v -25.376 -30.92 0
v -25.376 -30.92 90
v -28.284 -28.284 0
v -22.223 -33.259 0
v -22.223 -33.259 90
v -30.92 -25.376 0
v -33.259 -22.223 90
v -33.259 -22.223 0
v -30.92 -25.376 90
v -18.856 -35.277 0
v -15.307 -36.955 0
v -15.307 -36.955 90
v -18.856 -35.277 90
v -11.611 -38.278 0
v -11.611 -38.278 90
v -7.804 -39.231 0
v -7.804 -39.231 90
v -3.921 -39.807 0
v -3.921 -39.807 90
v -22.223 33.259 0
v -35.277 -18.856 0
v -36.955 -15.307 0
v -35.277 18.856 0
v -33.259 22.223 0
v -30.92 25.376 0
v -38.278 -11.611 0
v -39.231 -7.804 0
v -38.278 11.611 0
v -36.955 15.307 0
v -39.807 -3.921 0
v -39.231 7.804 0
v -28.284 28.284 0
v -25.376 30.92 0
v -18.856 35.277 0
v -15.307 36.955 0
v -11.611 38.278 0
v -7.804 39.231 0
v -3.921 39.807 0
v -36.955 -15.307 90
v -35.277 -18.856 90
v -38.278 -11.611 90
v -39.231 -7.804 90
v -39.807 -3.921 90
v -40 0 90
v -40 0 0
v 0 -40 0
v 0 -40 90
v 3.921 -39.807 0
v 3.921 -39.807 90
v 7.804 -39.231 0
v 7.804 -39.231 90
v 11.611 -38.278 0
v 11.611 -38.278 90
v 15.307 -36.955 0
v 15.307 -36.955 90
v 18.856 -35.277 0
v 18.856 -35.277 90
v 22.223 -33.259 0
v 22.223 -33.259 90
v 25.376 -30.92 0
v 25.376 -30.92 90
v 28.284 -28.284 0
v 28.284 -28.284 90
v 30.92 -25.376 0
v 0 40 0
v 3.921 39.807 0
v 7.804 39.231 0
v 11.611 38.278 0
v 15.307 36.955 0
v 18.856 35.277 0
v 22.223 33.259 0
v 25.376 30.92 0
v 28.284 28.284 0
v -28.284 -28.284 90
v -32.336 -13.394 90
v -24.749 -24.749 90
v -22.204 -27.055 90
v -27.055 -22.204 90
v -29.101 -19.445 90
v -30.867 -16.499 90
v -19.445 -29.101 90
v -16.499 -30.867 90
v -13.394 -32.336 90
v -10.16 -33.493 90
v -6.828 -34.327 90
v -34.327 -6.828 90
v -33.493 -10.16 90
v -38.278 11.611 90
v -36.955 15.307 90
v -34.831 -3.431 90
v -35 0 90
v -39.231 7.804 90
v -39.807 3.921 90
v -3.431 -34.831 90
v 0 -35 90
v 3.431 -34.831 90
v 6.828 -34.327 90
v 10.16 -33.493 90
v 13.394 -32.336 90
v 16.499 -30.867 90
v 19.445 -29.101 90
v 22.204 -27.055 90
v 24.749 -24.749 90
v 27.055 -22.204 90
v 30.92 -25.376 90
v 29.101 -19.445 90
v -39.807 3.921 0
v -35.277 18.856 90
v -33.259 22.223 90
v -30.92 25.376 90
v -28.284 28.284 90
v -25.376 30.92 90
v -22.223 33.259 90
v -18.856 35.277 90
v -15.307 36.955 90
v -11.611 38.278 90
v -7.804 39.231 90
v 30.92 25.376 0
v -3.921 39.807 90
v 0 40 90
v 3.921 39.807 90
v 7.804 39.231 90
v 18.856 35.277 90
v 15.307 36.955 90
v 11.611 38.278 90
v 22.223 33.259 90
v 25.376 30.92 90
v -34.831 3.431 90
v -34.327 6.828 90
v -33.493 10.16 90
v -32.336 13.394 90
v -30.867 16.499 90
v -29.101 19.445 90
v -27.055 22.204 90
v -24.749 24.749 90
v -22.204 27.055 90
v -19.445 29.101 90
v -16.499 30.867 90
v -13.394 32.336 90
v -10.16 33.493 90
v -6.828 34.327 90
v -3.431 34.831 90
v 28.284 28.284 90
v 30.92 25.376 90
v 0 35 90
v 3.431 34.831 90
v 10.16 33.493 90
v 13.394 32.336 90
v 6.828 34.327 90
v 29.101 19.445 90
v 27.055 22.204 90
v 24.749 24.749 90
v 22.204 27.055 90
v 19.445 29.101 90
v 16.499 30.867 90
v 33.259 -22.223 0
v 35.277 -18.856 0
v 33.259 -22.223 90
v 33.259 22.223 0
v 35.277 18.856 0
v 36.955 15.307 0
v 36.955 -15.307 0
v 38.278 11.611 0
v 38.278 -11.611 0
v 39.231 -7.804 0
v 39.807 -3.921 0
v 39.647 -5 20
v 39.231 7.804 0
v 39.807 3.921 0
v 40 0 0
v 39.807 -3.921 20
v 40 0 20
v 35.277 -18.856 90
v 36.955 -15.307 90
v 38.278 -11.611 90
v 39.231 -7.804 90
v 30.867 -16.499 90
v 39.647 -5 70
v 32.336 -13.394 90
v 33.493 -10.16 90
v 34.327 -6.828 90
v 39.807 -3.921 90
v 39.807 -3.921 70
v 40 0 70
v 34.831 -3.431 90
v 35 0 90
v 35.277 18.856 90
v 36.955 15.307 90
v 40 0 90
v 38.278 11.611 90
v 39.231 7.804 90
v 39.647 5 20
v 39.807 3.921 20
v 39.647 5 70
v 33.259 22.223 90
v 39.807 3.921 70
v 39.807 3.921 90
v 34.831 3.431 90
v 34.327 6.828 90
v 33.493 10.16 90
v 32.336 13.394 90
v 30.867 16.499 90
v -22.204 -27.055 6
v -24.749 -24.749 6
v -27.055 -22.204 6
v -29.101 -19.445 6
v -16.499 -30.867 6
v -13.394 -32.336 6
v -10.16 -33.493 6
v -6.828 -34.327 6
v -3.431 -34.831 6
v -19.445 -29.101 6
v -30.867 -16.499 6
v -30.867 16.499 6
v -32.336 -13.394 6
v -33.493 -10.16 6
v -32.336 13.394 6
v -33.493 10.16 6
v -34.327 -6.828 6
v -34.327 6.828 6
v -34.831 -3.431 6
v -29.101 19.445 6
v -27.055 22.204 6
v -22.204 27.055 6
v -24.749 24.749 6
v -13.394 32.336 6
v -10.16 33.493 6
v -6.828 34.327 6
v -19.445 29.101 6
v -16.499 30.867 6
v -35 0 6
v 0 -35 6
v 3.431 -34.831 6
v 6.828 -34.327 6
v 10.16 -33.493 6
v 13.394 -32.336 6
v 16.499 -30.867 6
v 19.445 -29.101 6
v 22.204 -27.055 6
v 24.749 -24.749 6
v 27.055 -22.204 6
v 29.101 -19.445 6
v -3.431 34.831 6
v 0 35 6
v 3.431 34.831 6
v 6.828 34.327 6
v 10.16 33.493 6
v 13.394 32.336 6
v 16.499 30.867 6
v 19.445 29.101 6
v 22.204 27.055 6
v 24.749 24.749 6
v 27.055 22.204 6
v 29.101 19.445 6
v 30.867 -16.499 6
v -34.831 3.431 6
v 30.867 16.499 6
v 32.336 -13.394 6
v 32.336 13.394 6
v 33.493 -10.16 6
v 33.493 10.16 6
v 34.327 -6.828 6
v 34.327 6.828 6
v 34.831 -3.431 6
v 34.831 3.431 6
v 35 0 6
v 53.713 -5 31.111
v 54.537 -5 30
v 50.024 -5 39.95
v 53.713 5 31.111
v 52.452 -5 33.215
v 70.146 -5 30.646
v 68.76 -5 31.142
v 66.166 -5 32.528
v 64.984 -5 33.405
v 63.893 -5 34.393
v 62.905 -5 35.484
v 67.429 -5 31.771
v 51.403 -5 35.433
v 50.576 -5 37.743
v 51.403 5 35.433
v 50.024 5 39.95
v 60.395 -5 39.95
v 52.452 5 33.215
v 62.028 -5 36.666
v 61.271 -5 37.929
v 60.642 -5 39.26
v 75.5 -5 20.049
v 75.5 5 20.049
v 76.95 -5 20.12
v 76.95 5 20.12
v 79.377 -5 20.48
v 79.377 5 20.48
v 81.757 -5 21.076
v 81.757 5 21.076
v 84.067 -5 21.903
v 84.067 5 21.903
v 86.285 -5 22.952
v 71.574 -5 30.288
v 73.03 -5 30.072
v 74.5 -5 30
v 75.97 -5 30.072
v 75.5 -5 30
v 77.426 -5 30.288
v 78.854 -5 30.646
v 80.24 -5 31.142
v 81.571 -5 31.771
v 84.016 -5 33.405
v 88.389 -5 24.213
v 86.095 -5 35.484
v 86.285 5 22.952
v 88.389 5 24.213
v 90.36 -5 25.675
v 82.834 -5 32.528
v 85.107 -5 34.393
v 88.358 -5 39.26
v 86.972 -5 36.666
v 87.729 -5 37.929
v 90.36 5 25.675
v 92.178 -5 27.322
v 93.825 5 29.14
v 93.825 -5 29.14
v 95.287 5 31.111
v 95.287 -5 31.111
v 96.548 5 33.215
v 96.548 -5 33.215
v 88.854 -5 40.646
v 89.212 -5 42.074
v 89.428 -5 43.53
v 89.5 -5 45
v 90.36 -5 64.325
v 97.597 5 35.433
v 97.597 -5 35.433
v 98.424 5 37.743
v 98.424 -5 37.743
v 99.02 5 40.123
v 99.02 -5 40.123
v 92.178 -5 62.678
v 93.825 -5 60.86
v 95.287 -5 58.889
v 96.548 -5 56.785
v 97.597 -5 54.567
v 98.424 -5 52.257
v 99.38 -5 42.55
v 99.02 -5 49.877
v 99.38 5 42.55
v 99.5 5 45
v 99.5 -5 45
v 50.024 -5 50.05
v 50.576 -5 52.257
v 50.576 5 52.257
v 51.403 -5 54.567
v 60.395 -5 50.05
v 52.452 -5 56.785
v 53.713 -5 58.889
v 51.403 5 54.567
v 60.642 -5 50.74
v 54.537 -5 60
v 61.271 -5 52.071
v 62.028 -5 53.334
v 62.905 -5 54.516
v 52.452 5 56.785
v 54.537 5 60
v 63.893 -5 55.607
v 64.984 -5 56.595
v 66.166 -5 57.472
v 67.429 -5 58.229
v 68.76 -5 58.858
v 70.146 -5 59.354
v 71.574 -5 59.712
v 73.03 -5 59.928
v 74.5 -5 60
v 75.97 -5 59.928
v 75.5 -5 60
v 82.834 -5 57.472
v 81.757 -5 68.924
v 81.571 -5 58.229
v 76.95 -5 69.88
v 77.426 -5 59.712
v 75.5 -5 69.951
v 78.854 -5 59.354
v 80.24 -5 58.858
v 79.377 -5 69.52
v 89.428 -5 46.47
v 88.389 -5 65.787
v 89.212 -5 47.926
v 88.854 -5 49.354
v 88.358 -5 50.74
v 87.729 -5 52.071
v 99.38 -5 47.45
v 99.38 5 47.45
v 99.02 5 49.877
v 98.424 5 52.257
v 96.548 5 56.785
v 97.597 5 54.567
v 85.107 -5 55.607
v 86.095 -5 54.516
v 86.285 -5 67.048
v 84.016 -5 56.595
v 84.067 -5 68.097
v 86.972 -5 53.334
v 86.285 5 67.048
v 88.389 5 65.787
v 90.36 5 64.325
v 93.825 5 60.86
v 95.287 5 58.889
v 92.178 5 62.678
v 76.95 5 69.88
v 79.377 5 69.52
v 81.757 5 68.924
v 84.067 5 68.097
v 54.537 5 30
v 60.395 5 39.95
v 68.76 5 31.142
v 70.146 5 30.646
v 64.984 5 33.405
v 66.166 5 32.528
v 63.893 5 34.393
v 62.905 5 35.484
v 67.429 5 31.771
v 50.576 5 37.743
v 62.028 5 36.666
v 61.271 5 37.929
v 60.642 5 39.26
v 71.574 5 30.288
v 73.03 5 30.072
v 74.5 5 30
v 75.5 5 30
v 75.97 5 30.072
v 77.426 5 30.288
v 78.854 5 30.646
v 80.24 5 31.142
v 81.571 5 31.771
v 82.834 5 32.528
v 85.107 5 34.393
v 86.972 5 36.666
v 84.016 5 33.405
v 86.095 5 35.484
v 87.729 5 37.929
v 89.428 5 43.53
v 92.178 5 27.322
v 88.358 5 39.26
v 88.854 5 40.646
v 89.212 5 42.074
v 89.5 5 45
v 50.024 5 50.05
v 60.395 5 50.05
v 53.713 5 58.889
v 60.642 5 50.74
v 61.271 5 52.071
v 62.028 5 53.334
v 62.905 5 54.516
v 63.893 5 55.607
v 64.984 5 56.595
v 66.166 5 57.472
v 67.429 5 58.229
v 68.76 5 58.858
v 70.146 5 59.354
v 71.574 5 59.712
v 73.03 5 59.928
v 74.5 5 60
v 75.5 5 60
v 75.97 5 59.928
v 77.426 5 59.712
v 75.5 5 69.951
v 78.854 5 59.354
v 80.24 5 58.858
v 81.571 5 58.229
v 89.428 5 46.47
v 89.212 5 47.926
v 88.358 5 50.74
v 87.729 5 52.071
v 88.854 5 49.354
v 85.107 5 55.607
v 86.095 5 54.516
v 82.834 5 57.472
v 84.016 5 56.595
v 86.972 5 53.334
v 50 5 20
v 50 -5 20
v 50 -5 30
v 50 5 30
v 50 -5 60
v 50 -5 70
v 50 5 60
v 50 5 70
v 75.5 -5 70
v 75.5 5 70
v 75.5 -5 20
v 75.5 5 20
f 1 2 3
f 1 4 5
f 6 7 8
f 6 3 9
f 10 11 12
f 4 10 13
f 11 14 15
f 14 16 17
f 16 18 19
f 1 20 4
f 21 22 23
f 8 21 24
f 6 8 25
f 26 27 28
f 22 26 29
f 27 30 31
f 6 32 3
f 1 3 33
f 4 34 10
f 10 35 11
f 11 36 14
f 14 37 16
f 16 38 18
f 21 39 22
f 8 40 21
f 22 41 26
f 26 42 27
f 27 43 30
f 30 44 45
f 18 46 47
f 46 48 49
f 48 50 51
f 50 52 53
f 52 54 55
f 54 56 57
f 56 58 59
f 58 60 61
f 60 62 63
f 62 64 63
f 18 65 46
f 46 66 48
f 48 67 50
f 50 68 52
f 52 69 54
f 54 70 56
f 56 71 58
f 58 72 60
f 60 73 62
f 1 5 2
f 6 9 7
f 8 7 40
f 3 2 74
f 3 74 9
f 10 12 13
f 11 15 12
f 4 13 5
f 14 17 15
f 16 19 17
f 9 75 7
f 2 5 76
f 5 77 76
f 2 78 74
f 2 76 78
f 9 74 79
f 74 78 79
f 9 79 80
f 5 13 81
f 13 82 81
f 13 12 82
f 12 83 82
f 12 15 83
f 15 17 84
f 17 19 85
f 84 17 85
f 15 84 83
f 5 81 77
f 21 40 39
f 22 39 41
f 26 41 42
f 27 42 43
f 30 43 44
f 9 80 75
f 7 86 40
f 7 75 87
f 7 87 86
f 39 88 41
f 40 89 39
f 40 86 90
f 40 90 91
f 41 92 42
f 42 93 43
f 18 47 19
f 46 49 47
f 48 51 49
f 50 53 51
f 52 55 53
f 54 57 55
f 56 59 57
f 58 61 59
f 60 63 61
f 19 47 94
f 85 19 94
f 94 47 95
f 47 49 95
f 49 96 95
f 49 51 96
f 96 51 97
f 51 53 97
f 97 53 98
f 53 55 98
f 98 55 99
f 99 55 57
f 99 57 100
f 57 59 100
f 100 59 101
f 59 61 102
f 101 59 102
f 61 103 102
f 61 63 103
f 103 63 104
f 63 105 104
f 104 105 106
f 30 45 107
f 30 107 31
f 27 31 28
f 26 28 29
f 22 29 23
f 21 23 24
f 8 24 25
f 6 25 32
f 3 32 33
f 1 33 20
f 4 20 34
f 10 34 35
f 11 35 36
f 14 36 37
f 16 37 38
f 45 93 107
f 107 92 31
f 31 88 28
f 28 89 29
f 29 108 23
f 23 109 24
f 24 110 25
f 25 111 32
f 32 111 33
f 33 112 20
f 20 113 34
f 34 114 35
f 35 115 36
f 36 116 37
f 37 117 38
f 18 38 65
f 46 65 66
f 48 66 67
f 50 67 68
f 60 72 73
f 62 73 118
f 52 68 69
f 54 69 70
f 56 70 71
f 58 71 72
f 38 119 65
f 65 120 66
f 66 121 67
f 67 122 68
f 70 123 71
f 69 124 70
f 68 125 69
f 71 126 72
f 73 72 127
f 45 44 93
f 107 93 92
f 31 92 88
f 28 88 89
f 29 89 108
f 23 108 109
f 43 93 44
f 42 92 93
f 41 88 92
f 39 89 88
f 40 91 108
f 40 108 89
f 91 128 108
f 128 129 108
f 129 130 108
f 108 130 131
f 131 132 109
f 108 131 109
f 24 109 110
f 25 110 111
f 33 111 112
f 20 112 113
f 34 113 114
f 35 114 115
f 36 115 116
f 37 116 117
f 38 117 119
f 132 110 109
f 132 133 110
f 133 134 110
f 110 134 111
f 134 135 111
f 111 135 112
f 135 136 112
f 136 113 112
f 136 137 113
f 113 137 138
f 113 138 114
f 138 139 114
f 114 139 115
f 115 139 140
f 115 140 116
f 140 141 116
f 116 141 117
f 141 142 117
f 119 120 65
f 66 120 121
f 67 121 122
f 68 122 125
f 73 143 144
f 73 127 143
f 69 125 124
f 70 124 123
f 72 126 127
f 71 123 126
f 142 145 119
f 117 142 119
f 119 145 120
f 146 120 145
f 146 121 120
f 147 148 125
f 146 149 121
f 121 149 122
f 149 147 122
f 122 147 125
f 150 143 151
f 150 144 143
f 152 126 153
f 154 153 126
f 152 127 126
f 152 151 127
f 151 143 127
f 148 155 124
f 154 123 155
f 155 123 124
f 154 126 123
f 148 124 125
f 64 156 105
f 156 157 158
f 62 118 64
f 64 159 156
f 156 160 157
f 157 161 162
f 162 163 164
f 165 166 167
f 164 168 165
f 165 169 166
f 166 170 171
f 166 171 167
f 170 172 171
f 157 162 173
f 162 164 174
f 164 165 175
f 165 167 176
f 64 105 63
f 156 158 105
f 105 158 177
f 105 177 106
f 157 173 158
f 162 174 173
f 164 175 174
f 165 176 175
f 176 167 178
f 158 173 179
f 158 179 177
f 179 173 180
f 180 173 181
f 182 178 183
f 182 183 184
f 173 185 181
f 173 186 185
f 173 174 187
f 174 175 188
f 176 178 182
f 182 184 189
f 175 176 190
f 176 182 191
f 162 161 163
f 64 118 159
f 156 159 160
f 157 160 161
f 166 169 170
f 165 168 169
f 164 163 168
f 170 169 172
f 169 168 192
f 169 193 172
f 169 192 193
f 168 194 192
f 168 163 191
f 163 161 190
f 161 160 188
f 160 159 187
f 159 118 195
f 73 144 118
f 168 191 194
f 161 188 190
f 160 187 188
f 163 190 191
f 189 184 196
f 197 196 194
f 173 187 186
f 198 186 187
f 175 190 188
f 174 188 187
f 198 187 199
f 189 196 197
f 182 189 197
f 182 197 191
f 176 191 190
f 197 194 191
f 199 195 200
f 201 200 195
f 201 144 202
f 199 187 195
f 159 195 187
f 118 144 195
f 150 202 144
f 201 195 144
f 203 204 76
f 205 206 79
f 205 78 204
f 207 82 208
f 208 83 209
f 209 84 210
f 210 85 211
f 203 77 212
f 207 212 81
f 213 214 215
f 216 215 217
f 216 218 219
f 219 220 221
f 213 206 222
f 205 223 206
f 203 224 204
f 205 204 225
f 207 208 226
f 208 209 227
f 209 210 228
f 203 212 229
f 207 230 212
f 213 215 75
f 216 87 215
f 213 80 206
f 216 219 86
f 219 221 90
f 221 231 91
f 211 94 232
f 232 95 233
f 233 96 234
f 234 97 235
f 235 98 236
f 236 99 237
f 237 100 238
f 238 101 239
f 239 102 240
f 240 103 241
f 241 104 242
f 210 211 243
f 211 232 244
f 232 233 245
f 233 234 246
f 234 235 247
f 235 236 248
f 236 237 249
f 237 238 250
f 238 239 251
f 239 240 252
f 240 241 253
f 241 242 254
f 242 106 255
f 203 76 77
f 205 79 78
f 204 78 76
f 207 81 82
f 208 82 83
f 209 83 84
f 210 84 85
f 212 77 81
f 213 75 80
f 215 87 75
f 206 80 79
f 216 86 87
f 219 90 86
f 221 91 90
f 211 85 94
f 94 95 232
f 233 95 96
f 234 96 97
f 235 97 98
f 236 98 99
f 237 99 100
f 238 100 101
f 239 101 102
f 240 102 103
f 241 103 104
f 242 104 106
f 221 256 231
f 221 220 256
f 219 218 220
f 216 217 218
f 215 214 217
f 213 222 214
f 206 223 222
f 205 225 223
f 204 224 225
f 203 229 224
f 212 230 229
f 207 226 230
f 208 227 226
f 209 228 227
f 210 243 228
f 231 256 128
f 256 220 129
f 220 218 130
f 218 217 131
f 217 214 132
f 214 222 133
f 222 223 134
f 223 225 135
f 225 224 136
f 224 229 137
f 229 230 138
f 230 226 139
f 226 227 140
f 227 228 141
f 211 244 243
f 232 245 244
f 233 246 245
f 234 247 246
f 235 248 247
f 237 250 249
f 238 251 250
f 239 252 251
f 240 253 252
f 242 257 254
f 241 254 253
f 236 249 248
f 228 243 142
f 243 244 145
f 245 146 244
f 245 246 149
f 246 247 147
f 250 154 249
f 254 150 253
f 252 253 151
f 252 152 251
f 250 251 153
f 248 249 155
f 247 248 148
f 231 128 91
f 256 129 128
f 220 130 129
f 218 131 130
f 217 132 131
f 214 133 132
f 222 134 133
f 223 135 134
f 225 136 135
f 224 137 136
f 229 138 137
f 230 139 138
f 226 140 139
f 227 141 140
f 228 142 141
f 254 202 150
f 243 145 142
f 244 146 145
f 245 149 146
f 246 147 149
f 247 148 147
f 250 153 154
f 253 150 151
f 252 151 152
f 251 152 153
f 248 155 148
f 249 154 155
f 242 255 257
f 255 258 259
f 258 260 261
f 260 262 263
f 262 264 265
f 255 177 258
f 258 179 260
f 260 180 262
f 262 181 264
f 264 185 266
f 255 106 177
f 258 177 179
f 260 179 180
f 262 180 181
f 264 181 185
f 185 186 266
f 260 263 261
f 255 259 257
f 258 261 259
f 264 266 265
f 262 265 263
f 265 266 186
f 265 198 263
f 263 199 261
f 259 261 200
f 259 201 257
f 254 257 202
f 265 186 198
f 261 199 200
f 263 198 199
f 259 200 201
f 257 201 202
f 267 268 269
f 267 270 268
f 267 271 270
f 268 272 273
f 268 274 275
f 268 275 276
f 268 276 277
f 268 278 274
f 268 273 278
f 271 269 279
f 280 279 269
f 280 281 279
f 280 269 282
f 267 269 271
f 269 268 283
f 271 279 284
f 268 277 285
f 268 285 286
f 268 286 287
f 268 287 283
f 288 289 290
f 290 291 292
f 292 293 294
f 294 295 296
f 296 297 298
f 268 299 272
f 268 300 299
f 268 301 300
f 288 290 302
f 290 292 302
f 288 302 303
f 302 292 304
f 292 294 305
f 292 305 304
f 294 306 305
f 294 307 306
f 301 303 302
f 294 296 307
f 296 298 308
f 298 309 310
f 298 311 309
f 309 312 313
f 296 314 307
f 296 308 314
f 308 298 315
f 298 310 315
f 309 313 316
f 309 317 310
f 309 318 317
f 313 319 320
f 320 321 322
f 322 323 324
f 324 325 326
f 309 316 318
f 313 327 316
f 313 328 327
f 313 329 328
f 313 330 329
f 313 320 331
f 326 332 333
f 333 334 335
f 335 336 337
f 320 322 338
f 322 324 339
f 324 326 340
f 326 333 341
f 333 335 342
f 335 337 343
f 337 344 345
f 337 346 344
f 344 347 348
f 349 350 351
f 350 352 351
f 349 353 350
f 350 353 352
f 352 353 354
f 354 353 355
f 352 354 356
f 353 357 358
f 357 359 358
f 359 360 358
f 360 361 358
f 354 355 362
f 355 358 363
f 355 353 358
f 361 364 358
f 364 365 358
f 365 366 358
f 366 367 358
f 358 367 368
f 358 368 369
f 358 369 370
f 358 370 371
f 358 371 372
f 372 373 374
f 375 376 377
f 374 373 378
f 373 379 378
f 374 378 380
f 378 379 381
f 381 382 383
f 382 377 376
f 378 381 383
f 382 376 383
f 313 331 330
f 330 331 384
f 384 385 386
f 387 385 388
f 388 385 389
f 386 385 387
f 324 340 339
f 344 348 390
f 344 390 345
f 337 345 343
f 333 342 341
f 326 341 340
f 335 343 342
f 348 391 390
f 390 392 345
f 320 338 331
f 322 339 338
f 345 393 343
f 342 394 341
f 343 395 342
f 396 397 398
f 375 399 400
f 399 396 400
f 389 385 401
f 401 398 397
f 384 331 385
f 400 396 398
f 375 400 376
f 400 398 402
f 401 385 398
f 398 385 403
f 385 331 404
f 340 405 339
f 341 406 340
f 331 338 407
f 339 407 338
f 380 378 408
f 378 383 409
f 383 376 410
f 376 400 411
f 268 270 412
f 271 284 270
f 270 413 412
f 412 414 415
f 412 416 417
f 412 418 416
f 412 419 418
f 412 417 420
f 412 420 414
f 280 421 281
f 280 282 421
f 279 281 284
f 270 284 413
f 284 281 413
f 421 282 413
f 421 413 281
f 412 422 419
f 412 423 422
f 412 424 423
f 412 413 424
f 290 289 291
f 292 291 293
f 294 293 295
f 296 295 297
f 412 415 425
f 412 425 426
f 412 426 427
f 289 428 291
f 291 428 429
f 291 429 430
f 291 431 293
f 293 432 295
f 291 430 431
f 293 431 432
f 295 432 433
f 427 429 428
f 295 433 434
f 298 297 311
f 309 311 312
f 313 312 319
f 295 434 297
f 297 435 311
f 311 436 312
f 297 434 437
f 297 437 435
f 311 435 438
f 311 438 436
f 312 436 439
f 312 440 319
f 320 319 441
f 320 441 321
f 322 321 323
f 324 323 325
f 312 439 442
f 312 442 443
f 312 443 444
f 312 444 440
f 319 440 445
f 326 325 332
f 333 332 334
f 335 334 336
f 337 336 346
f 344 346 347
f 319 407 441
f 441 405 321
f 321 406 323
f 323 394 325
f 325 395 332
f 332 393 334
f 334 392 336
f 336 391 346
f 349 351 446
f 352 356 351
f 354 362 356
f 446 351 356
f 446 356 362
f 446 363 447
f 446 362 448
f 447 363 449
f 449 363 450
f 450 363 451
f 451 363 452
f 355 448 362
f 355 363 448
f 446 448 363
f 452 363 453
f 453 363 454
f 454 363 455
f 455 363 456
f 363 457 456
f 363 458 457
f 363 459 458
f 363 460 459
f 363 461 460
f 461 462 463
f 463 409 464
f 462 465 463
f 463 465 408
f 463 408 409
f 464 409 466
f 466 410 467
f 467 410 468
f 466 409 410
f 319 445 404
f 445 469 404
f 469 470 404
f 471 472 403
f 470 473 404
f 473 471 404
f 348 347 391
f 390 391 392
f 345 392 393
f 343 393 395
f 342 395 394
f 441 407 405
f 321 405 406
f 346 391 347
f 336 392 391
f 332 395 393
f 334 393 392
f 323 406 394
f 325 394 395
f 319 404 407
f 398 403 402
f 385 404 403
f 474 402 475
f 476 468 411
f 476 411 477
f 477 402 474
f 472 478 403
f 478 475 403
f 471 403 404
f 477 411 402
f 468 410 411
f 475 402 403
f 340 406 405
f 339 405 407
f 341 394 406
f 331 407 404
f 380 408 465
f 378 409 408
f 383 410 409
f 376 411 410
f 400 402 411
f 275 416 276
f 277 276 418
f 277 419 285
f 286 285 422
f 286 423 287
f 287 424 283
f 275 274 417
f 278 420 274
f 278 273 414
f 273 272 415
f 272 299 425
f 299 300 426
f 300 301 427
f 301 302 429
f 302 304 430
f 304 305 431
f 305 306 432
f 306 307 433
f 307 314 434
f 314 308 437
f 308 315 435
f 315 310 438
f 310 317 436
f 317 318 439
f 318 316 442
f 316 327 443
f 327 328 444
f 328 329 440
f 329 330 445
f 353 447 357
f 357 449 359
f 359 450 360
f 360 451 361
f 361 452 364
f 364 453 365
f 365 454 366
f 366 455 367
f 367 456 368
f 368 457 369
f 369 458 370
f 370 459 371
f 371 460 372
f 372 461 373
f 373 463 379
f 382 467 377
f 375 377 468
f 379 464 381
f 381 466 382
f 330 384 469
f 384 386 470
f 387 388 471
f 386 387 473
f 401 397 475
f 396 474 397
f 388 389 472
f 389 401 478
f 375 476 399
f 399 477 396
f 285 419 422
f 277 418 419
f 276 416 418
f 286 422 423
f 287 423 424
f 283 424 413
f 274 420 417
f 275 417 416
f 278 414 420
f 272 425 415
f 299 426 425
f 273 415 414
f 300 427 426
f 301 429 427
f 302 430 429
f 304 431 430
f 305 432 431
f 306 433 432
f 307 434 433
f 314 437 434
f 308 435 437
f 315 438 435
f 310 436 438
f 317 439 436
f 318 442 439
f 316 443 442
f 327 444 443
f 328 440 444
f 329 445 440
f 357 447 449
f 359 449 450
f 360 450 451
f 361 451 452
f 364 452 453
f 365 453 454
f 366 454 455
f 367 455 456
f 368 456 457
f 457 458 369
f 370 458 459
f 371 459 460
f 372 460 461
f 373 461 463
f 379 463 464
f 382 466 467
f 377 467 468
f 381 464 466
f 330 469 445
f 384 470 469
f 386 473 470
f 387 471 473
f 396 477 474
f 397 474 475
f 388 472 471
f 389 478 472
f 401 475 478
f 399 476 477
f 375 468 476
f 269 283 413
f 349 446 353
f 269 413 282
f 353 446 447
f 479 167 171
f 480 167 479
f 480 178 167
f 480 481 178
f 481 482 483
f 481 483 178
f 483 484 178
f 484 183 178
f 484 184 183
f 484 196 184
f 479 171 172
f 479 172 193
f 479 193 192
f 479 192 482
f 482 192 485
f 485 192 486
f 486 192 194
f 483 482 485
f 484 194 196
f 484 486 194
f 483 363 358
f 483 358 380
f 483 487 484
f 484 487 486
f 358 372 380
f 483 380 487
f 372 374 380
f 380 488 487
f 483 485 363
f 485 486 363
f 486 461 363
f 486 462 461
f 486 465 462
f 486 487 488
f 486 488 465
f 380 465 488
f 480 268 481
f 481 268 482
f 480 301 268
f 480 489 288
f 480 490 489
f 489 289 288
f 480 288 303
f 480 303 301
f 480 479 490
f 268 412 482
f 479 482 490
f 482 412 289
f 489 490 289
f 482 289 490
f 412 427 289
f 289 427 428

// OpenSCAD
// OpenSCAD Mug with Handle
// Global rendering quality (higher value = smoother curves)
$fn = 64;

// Mug body parameters
mug_outer_radius = 80 / 2; // 40mm
mug_inner_radius = 70 / 2; // 35mm
mug_height = 90;
mug_bottom_thickness = 6;

// Handle parameters
handle_thickness = 10;          // Thickness of the handle material
handle_inner_width = 25;        // Internal width of the finger hole (X direction)
handle_inner_height = 30;       // Internal height of the finger hole (Z direction)

// Overlap for robust union between handle and mug body, and between handle components
// A small positive value ensures parts slightly penetrate each other,
// which helps OpenSCAD create a manifold solid and avoids Z-fighting artifacts.
handle_overlap_epsilon = 0.5; // Example: 0.5mm overlap

// Calculate handle positioning
handle_z_center = mug_height / 2; // Center of the handle vertically on the mug
handle_y_center = 0;              // Center of the handle horizontally (aligned with mug's Y axis)

module mug_body() {
    difference() {
        // Outer cylinder of the mug
        cylinder(h = mug_height, r = mug_outer_radius);

        // Inner hollow part
        // Lifted by mug_bottom_thickness to create the solid bottom
        // Slightly increased height to avoid Z-fighting artifacts on the top surface
        translate([0, 0, mug_bottom_thickness])
            cylinder(h = mug_height - mug_bottom_thickness + handle_overlap_epsilon, r = mug_inner_radius);
    }
}

module mug_handle() {
    // Define key X-coordinates for the handle construction for clarity and precision.
    // The X-coordinate where the handle's outermost surface (if no overlap) would meet the mug.
    x_mug_outer_surface = mug_outer_radius;

    // The X-coordinate where the handle's vertical bar starts, embedded into the mug.
    x_handle_start_embedded = x_mug_outer_surface - handle_overlap_epsilon;

    // The X-coordinate of the inner face of the handle material, after the mug connection.
    // This is also where the horizontal bars of the D-shape begin.
    x_handle_inner_material_face = x_mug_outer_surface + handle_thickness;

    // The X-coordinate where the straight part of the finger hole ends and the arc begins.
    // This is the X-coordinate of the "straight edge" of the D-arc.
    x_handle_arc_straight_edge = x_handle_inner_material_face + handle_inner_width;

    union() {
        // 1. Vertical connecting bar (connects handle to mug)
        // This bar spans the full height of the D-shaped handle.
        // Its X-dimension extends from x_handle_start_embedded to x_handle_inner_material_face.
        translate([
            x_handle_start_embedded,                         // Starts slightly inside the mug (X)
            handle_y_center - handle_thickness / 2,          // Centered on Y axis
            handle_z_center - (handle_inner_height / 2 + handle_thickness) // Bottom Z of the handle
        ]) {
            cube([
                handle_thickness + handle_overlap_epsilon,   // X-dimension (handle_thickness + the overlap into mug)
                handle_thickness,                            // Y-dimension (handle's thickness)
                handle_inner_height + 2 * handle_thickness   // Z-dimension (total height of the handle)
            ]);
        }

        // 2. Top horizontal bar
        // This bar forms the top part of the D-shape, connecting the vertical bar to the arc.
        // It's extended slightly into the arc region to ensure robust union.
        translate([
            x_handle_inner_material_face,                    // Starts after the vertical connecting bar (X)
            handle_y_center - handle_thickness / 2,          // Centered on Y axis
            handle_z_center + handle_inner_height / 2        // Top Z of the finger hole
        ]) {
            cube([
                handle_inner_width + handle_overlap_epsilon, // X-dimension (width of the finger hole part + overlap)
                handle_thickness,                            // Y-dimension (handle's thickness)
                handle_thickness                             // Z-dimension (height of this bar)
            ]);
        }

        // 3. Bottom horizontal bar
        // This bar forms the bottom part of the D-shape.
        // It's extended slightly into the arc region to ensure robust union.
        translate([
            x_handle_inner_material_face,                    // Starts after the vertical connecting bar (X)
            handle_y_center - handle_thickness / 2,          // Centered on Y axis
            handle_z_center - handle_inner_height / 2 - handle_thickness // Bottom Z of the finger hole
        ]) {
            cube([
                handle_inner_width + handle_overlap_epsilon, // X-dimension (width of the finger hole part + overlap)
                handle_thickness,                            // Y-dimension (handle's thickness)
                handle_thickness                             // Z-dimension (height of this bar)
            ]);
        }

        // 4. Outer D-shape arc
        // This creates the curved part of the D-shape handle.
        // It's formed by differencing two concentric cylinders and then cutting one half.
        outer_arc_radius = handle_inner_height / 2 + handle_thickness; // Radius of the outer curve
        inner_arc_radius = handle_inner_height / 2;                   // Radius of the inner cut for the arc

        // The arc is generated such that its straight (left) edge is at X=0 in its local coordinates
        // after the difference and cutting operations.
        // We translate it so its straight edge overlaps with the horizontal bars.
        translate([x_handle_arc_straight_edge - handle_overlap_epsilon, handle_y_center, handle_z_center])
        rotate([90, 0, 0]) { // Rotate so the cylinder's height is along Y, and the arc is in the XZ plane
            difference() {
                // Outer cylinder that defines the overall arc shape (centered in XZ plane)
                cylinder(r = outer_arc_radius, h = handle_thickness, center = true);
                
                // Inner cylinder to cut out the inside of the arc, creating a ring shape
                // Use a slightly larger height to ensure a clean cut through the entire handle_thickness
                cylinder(r = inner_arc_radius, h = handle_thickness * 1.01, center = true);
                
                // Cutting cube to remove the 'negative X' half of the ring, forming the D-shape arc.
                // The cylinders are centered at [0,0,0] in this rotated coordinate system.
                // We want to keep the positive X half (right side), so we cut the negative X half (left side).
                // This cube effectively cuts everything from X < ~0.
                // The cube is positioned to cover the negative X half, ensuring a clean cut.
                translate([-outer_arc_radius - 0.1, 0, 0])
                    cube([outer_arc_radius + 0.2, handle_thickness * 1.01, outer_arc_radius * 2 + 0.2], center=true);
            }
        }
    }
}

// Assemble the complete mug by combining the body and the handle
union() {
    mug_body();
    mug_handle();
}
